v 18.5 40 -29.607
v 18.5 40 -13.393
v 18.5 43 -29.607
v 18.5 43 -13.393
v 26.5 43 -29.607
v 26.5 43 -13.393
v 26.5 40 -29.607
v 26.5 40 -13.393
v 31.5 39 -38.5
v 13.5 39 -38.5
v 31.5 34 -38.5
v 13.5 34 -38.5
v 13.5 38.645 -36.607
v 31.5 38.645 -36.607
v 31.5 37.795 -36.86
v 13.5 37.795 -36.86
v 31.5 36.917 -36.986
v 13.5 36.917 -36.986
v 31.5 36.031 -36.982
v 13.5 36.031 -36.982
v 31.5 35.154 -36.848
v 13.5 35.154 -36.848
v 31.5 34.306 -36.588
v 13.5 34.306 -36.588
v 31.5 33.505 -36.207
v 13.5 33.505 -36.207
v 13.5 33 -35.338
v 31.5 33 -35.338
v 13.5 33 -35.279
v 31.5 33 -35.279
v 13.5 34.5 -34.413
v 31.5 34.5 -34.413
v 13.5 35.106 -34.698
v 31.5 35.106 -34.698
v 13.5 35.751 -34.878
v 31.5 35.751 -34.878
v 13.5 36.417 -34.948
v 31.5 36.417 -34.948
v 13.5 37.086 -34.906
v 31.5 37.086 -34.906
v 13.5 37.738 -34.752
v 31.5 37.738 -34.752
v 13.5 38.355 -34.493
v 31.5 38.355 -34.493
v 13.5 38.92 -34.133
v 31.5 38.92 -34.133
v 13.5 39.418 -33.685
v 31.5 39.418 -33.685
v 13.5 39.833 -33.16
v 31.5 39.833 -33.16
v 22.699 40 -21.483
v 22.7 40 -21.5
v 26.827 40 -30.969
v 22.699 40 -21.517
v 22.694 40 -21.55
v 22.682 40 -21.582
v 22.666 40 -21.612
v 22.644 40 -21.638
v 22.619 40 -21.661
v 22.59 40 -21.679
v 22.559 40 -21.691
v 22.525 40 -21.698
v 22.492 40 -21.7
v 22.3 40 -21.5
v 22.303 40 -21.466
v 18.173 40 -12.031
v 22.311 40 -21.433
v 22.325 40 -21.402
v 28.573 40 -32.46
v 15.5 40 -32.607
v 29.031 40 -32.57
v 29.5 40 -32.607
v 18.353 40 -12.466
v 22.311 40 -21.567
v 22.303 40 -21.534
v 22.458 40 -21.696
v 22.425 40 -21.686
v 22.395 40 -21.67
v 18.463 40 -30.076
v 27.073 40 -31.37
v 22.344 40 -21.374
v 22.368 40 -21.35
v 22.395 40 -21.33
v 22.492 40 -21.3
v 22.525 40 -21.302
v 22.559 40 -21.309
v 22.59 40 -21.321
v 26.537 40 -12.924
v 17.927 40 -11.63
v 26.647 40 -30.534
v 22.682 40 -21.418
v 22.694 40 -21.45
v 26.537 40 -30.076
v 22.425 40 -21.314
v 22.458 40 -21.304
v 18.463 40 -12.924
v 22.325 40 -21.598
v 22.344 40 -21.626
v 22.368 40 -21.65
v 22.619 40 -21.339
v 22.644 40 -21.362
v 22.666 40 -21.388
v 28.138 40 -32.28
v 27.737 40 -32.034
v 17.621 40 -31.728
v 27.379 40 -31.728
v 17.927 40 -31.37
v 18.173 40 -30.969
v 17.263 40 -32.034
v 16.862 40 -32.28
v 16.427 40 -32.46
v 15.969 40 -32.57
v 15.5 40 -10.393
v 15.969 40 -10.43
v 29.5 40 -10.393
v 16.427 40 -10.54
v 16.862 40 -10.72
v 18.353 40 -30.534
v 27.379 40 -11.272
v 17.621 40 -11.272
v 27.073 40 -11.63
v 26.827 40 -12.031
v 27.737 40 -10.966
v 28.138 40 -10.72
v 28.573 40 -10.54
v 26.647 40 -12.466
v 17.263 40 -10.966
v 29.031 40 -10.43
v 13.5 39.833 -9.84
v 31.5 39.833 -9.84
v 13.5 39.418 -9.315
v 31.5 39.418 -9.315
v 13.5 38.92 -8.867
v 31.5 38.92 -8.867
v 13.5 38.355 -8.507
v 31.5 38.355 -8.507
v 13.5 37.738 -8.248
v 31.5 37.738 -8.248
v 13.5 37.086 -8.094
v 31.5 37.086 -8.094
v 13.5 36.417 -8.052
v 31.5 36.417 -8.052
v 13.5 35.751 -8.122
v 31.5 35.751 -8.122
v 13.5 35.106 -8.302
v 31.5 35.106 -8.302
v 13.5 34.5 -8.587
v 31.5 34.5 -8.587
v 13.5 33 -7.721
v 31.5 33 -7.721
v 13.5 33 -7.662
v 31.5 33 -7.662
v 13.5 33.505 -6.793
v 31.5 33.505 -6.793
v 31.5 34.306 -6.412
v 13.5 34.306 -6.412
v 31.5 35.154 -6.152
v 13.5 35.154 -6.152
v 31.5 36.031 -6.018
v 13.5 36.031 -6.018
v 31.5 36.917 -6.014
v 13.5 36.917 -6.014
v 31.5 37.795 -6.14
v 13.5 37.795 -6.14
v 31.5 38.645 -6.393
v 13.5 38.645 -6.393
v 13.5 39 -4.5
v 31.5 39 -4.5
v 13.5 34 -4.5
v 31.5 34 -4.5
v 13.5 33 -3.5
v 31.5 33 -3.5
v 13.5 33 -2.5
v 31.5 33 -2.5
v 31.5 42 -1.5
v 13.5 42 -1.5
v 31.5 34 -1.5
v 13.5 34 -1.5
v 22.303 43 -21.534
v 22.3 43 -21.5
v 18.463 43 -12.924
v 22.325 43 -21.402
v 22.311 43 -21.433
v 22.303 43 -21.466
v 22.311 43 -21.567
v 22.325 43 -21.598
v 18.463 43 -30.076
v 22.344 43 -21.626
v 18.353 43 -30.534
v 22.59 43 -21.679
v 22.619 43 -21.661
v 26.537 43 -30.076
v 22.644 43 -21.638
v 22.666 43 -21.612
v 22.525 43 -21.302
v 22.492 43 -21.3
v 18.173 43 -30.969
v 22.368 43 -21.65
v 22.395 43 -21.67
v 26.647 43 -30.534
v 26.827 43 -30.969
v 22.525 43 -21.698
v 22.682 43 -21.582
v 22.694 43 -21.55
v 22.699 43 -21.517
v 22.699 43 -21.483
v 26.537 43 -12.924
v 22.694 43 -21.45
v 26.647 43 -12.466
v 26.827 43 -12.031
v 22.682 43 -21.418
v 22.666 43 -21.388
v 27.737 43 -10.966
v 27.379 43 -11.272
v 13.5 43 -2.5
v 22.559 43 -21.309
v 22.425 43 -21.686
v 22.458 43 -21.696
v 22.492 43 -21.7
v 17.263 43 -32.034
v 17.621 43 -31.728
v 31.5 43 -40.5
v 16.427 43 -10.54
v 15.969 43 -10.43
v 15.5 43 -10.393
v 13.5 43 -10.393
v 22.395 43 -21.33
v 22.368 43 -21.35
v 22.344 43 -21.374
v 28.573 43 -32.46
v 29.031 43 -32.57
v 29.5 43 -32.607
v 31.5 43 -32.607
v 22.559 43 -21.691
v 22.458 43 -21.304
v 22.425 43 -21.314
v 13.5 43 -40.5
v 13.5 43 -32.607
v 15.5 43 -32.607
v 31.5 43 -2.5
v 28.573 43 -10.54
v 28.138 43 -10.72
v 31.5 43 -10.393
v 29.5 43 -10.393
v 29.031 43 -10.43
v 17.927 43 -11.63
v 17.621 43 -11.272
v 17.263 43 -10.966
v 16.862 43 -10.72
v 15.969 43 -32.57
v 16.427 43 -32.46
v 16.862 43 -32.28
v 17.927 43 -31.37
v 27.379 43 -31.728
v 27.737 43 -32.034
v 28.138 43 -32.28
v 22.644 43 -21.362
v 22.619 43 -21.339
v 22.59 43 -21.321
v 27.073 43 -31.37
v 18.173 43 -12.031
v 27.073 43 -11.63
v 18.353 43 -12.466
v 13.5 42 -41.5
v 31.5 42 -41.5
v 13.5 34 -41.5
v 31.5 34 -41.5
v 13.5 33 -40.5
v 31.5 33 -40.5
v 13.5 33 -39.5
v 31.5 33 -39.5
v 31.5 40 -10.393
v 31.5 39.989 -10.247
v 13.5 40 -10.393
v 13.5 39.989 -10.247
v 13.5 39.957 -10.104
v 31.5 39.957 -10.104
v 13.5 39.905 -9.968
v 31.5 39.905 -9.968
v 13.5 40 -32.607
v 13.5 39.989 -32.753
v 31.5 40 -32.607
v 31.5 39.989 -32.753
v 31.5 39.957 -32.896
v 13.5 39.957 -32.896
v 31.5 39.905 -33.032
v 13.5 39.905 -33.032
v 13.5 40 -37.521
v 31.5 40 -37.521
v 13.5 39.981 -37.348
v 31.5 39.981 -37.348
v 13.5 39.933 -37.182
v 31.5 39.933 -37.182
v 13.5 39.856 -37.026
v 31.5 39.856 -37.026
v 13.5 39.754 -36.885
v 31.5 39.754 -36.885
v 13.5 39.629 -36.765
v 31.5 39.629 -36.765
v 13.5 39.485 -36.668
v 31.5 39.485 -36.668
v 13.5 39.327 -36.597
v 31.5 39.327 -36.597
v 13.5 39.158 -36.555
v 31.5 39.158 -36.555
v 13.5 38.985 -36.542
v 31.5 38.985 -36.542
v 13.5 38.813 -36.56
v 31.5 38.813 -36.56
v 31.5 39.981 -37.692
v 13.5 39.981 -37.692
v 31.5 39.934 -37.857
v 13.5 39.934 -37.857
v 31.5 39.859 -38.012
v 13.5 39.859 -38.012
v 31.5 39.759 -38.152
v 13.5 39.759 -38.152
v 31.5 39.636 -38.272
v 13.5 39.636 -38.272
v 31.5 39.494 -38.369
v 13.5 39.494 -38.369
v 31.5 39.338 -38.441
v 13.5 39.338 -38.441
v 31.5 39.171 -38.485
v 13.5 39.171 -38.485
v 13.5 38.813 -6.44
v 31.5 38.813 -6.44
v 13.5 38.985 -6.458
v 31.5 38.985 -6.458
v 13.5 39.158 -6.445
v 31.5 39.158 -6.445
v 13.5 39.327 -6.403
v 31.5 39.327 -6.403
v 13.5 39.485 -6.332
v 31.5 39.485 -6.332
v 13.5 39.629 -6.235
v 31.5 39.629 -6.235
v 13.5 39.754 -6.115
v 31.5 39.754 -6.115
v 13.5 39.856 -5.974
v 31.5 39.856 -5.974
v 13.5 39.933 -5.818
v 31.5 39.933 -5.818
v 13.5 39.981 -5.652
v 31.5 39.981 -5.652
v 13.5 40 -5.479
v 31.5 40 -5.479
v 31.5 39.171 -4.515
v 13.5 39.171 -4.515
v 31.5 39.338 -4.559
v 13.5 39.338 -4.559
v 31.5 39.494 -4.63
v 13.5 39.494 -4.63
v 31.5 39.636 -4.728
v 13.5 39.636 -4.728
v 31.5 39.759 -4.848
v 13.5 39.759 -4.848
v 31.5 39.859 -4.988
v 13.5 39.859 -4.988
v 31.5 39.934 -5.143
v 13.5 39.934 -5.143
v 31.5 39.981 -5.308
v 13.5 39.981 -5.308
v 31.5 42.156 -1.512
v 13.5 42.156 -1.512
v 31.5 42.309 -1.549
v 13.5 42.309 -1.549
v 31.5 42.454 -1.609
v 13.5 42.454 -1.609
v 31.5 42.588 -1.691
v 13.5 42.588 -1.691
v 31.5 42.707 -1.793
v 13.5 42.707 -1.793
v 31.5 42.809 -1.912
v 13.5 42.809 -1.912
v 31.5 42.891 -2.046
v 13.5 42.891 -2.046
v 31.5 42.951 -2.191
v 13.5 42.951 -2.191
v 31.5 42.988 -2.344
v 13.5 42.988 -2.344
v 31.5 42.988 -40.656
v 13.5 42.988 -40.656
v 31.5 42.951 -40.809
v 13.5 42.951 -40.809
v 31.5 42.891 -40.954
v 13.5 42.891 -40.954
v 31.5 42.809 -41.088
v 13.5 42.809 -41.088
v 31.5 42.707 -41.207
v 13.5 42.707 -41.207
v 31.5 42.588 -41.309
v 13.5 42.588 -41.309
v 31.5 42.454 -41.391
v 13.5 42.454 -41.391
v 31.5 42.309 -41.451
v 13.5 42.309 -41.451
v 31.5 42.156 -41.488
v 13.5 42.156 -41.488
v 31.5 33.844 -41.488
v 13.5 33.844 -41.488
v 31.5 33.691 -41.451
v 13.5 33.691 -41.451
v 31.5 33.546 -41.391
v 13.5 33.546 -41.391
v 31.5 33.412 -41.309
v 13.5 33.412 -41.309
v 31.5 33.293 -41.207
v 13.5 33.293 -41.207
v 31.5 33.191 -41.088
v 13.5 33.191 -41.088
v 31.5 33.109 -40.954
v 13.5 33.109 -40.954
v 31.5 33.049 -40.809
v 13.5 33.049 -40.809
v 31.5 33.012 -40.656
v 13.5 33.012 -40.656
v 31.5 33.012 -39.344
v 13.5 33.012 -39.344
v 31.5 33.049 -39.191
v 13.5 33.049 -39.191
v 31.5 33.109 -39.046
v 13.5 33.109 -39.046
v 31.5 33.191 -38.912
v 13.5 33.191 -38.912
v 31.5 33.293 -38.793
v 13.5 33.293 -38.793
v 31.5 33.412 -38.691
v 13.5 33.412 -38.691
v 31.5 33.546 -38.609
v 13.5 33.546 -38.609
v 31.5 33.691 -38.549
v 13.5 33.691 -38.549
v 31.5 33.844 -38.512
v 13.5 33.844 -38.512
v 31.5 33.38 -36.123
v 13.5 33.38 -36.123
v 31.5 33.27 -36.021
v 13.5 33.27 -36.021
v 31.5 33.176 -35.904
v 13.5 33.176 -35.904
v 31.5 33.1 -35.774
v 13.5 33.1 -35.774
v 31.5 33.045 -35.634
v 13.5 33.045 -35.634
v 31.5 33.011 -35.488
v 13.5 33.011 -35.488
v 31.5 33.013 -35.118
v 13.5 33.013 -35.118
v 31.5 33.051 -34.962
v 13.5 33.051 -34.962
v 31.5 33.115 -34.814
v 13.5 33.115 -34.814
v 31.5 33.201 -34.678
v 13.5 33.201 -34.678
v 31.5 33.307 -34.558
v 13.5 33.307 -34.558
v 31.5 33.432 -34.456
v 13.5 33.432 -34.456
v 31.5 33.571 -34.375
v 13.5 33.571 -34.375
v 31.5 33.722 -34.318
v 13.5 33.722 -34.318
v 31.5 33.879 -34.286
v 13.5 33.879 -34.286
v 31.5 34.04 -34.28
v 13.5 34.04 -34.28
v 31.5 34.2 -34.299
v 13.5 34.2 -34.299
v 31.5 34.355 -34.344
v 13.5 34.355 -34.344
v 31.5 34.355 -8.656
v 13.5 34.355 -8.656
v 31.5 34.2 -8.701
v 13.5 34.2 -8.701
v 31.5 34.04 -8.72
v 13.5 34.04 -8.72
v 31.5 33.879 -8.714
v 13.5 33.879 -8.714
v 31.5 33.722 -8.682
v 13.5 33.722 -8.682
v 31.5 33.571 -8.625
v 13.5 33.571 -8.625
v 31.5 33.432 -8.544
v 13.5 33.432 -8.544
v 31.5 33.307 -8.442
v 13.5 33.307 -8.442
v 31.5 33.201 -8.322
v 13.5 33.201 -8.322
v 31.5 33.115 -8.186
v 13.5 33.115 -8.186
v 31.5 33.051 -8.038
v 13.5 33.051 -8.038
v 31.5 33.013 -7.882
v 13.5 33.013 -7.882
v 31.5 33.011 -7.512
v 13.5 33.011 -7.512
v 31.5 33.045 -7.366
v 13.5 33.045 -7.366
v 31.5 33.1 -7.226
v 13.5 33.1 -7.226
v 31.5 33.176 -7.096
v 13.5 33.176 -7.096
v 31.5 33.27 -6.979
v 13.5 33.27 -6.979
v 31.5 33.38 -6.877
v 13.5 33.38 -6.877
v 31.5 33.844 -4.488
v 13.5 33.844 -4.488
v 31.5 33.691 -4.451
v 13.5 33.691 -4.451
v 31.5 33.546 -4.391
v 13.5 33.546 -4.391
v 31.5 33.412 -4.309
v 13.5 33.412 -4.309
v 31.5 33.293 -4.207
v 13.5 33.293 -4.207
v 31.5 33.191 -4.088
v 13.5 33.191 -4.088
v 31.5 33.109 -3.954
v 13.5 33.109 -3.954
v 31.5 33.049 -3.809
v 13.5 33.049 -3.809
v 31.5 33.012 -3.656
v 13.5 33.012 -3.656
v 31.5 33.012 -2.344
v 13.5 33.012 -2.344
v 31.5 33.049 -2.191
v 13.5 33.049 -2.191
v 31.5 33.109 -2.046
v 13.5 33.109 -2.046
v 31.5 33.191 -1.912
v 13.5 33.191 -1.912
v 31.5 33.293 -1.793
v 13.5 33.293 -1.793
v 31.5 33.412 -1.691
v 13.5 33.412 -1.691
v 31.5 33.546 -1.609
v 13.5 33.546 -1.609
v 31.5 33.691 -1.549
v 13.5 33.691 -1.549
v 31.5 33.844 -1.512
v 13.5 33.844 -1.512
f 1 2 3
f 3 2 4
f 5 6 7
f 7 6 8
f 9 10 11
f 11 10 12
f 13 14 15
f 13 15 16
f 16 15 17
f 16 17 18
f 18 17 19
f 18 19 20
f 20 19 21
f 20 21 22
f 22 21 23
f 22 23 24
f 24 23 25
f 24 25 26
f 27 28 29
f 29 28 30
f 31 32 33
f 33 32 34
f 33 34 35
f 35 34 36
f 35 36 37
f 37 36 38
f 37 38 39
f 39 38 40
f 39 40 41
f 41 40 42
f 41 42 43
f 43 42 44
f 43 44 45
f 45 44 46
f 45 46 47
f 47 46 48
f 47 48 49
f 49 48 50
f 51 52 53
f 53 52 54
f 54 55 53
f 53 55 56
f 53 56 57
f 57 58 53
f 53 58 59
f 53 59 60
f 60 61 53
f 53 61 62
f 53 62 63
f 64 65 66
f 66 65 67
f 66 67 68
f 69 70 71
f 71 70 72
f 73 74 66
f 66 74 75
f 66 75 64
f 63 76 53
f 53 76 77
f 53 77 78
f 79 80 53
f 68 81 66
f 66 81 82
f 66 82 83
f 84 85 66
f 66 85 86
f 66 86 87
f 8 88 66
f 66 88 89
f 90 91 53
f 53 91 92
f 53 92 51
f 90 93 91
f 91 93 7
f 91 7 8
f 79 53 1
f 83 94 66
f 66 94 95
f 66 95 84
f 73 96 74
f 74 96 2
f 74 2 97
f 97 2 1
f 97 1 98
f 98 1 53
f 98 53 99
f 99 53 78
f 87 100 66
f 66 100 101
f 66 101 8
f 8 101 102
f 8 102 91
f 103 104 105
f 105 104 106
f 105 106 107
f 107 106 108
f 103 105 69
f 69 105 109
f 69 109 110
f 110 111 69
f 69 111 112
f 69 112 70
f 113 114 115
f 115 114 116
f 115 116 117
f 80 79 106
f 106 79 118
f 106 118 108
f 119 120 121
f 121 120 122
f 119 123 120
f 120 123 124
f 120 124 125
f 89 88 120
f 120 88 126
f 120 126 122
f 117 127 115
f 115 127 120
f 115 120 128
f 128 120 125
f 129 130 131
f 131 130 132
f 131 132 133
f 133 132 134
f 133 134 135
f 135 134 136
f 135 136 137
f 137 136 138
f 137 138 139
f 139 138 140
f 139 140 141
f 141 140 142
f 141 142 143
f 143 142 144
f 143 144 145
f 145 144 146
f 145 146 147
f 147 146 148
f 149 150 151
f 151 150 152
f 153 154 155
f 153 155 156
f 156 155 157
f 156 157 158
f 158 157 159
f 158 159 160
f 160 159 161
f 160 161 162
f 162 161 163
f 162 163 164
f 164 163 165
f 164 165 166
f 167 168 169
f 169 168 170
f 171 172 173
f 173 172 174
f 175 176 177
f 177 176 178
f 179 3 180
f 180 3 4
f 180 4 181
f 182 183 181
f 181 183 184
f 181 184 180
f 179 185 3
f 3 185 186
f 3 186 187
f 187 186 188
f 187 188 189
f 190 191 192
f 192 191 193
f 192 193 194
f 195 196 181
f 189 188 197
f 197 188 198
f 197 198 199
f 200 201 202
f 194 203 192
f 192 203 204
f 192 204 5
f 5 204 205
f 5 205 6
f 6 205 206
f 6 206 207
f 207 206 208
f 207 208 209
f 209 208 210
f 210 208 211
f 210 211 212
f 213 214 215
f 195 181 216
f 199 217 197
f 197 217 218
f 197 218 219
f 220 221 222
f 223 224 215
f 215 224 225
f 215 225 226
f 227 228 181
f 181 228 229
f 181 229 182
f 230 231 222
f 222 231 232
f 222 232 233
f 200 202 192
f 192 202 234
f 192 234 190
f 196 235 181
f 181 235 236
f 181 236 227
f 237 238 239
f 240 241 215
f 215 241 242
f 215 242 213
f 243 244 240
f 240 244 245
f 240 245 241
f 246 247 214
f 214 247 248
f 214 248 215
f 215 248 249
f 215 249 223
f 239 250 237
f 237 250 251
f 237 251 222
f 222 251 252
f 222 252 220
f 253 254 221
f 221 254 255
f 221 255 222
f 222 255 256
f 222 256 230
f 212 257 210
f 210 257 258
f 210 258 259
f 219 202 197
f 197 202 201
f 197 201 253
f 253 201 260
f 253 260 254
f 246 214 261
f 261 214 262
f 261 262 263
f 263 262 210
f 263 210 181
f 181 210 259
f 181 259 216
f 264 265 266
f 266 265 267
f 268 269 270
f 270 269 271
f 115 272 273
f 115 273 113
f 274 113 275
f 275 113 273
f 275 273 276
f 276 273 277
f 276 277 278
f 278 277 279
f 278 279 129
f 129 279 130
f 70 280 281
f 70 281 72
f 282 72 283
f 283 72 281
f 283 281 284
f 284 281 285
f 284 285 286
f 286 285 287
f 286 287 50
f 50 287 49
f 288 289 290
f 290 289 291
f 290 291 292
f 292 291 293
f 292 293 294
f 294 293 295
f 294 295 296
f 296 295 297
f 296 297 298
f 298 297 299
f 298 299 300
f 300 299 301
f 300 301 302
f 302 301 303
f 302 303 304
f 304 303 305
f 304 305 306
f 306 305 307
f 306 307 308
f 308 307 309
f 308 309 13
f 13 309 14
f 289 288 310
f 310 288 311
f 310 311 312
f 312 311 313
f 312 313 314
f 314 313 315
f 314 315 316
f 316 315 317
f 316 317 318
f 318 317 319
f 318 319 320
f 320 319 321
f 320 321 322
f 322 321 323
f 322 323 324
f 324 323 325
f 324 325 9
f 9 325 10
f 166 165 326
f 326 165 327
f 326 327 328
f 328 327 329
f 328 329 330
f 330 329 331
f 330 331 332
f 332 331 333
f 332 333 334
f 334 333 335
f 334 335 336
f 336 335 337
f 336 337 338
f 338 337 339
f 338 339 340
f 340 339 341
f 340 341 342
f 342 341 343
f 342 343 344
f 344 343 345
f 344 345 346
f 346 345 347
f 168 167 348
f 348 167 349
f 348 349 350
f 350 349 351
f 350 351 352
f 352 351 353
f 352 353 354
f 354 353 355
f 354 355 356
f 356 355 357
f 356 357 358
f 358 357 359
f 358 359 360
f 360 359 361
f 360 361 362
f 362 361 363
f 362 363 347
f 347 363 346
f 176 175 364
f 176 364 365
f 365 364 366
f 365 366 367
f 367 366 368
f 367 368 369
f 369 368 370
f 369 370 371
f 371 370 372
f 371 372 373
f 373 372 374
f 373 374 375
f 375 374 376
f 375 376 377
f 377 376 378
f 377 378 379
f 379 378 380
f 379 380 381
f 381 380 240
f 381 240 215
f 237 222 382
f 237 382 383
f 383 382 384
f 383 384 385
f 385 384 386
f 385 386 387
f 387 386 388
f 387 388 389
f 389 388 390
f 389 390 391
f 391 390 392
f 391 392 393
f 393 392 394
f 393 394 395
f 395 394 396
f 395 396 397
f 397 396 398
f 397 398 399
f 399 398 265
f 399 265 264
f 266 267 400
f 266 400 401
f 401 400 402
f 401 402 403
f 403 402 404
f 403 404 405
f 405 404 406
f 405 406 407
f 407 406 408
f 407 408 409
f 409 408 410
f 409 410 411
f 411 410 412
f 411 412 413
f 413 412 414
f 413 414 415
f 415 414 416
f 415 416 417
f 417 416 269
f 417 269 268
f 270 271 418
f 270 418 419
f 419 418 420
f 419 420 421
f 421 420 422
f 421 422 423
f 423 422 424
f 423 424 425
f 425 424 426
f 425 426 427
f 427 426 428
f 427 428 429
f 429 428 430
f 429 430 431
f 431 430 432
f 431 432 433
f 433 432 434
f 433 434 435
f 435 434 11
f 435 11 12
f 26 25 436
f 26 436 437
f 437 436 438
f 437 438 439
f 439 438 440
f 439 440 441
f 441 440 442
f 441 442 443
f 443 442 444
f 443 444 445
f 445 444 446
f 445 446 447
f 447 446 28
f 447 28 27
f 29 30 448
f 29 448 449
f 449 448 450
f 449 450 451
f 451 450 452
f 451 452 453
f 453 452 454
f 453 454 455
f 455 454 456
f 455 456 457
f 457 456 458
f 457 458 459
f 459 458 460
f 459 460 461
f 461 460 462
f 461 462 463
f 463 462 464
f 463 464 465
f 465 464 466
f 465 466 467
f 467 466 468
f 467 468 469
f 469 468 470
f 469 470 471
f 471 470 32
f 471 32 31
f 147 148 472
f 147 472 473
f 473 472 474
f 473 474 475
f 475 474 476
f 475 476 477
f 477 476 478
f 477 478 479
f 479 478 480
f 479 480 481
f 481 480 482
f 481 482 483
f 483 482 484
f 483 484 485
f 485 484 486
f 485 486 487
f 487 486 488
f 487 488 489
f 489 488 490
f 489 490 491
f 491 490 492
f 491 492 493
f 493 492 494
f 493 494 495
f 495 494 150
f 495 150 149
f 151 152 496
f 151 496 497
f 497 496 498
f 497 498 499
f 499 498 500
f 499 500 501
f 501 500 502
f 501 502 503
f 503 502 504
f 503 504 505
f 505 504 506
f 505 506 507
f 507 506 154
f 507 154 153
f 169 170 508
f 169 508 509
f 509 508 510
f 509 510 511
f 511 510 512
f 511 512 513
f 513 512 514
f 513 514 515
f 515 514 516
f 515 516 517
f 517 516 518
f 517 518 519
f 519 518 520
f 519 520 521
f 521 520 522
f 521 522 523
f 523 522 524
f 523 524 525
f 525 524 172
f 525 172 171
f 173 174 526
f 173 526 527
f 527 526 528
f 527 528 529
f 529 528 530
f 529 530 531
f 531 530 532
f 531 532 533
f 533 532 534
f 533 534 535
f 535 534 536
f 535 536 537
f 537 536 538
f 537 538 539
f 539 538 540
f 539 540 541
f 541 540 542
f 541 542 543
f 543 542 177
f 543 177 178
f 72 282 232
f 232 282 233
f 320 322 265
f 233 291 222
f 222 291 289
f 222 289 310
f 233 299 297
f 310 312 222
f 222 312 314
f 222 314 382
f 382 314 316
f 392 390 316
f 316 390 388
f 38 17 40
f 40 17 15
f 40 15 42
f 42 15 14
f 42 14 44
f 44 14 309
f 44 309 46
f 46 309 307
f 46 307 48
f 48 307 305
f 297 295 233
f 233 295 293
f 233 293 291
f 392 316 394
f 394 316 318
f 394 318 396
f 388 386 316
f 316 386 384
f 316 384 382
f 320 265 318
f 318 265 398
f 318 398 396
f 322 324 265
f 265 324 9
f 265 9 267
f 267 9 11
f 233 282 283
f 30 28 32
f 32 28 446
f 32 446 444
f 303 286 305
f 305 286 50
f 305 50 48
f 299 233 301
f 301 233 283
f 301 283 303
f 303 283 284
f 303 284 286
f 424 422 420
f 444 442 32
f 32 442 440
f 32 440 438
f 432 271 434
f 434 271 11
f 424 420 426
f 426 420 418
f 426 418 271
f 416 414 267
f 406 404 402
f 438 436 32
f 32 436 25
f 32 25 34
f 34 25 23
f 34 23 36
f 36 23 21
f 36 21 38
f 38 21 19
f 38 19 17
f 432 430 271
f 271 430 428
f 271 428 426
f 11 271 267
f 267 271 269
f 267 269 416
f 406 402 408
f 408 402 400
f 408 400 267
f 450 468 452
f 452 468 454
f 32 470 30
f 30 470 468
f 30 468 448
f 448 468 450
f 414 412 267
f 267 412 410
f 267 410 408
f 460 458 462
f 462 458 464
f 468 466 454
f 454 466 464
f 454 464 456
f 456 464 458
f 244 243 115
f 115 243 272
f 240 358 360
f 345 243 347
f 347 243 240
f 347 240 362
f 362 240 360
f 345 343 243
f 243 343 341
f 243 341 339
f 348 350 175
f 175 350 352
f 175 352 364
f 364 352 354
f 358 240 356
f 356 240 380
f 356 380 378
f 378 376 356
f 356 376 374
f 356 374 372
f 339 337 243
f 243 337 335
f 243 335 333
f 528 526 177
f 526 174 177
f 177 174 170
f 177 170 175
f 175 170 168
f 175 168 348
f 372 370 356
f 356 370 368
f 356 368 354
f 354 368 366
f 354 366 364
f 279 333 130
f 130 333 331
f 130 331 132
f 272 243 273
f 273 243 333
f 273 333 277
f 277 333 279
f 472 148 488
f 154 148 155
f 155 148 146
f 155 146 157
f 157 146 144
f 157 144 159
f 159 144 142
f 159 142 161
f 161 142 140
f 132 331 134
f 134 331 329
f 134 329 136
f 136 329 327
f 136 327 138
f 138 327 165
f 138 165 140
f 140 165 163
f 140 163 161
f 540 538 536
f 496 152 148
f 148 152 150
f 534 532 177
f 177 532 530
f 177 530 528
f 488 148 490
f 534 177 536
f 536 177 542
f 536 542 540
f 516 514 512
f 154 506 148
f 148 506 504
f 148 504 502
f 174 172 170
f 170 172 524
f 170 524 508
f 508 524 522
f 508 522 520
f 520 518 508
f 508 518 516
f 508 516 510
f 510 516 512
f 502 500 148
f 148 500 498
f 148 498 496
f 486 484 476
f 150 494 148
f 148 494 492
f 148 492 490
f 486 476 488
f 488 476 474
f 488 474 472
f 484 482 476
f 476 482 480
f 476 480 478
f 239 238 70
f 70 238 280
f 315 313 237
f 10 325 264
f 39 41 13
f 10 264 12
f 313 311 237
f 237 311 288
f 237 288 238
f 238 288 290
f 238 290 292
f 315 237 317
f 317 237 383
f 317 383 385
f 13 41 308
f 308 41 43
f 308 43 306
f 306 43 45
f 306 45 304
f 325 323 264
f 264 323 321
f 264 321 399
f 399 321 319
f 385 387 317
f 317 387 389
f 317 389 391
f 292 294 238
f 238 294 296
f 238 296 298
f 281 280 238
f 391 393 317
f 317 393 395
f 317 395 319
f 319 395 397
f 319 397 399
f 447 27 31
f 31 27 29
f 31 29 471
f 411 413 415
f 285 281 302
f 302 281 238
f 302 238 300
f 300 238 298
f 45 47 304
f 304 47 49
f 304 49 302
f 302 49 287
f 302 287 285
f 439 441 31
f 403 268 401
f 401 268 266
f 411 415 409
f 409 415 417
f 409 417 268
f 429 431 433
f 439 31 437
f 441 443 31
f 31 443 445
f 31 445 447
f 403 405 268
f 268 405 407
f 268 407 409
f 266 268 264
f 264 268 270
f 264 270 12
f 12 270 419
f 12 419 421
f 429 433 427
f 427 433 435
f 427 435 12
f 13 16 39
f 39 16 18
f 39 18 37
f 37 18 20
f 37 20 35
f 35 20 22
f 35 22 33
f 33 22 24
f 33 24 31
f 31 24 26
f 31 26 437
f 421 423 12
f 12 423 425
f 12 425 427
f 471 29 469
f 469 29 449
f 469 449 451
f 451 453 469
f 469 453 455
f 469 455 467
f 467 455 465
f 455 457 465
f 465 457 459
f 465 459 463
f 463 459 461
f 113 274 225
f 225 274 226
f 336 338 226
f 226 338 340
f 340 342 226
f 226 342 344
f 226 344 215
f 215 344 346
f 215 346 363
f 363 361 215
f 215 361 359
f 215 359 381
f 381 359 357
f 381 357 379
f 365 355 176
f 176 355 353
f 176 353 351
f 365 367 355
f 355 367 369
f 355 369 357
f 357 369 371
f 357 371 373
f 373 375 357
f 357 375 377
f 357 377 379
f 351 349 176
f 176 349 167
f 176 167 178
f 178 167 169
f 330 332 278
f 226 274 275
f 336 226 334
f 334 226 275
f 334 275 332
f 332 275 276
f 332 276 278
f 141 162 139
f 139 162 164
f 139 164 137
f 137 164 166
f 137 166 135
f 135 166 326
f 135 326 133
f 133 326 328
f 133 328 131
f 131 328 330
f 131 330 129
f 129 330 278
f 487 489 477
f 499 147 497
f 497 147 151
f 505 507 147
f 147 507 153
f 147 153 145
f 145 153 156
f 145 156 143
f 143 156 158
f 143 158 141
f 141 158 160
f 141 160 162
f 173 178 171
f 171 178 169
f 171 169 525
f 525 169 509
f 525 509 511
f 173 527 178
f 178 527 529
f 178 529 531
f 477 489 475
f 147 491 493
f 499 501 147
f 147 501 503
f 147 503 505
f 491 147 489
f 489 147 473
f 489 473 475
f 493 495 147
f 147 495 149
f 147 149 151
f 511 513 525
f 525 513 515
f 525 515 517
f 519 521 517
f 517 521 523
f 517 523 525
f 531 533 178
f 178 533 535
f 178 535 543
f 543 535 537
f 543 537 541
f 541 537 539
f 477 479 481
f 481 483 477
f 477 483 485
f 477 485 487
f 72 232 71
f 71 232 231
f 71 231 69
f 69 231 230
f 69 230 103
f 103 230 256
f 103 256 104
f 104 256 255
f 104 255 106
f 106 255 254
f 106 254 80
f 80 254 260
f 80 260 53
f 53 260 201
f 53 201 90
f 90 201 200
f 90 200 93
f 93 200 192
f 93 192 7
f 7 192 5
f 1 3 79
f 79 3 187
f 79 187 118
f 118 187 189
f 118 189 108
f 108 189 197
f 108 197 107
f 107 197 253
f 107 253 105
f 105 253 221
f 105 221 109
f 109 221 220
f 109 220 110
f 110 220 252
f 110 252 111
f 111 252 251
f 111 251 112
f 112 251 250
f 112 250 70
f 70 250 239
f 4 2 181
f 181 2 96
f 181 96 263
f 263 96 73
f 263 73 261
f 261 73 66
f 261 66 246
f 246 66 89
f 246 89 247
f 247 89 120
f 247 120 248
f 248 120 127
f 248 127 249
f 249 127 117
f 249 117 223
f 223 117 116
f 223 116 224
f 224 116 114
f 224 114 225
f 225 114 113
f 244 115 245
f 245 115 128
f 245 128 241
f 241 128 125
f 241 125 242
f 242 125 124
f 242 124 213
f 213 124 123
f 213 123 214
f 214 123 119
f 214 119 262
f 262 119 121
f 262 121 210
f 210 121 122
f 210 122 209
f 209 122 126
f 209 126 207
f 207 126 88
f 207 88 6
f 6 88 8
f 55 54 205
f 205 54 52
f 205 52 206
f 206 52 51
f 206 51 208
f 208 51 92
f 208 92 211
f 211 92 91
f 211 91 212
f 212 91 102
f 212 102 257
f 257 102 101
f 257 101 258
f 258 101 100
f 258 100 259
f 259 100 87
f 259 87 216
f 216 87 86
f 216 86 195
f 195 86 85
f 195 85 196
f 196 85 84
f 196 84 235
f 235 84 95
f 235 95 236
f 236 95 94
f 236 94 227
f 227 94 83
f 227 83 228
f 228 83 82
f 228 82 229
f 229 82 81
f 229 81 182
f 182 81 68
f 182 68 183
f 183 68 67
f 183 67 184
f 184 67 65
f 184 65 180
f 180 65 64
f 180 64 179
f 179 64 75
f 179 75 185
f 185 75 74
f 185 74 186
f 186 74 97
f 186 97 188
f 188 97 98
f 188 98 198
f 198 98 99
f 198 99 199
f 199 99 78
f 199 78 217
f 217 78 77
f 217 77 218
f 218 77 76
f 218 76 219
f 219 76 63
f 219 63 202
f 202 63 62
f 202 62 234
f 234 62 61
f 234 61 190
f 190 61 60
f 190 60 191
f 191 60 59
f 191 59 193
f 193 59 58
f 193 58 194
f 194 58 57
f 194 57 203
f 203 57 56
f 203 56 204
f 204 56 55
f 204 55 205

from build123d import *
from build123d.topology import SkipClean

# Parameters (mm, degrees)
EXTRUDE_1_DEPTH      = 4
EXTRUDE_1_DEPTH_BACK = 4
FILLET_4_R           = 1
EXTRUDE_2_DEPTH      = 5
FILLET_5_R           = 3
SKETCH_5_R           = 0.2
CUT_EXTRUDE_1_DEPTH  = 54.051861419


with BuildPart() as part:
    # Эскиз1 → Бобышка-Вытянуть1 (new, two sides: drawn at the far end of the back side and taken through both)
    with BuildSketch(Plane(origin=(22.5, -18, -41), x_dir=(0, -1, 0), z_dir=(1, 0, 0)).offset(-EXTRUDE_1_DEPTH_BACK)):
        with BuildLine():
            Line((-51, -2.5), (-51, 0.5))
            Line((-51, 0.5), (-61, 0.5))
            Line((-61, 0.5), (-61, -39.5))
            Line((-61, -39.5), (-51, -39.5))
            Line((-51, -39.5), (-51, -36.5))
            Line((-51, -36.5), (-58, -36.5))
            Line((-58, -36.5), (-58, -33.885132318))
            ThreePointArc((-58, -33.885132318), (-54.5, -35), (-51, -33.885132318))
            Line((-51, -33.885132318), (-51, -30.885132318))
            ThreePointArc((-51, -30.885132318), (-54.5, -32.948640645), (-58, -30.885132318))
            Line((-58, -30.885132318), (-58, -8.114867682))
            ThreePointArc((-58, -8.114867682), (-54.5, -6.051359355), (-51, -8.114867682))
            Line((-51, -8.114867682), (-51, -5.114867682))
            ThreePointArc((-51, -5.114867682), (-54.5, -4), (-58, -5.114867682))
            Line((-58, -5.114867682), (-58, -2.5))
            Line((-58, -2.5), (-51, -2.5))
        make_face()
    extrude(amount=EXTRUDE_1_DEPTH + EXTRUDE_1_DEPTH_BACK)

    # Скругление4
    # the kernel refuses this fillet: 1 mm, written as the material it adds along each edge
    with BuildSketch(Plane(origin=(26.5, 40, -38.5), x_dir=(0, 0, 1), z_dir=(-1, 0, 0)), Plane(origin=(18.5, 40, -4.5), x_dir=(0, 0, -1), z_dir=(1, 0, 0))) as fillet_4_piece_1:
        with BuildLine():
            CenterArc((FILLET_4_R, -FILLET_4_R), FILLET_4_R, 90, 90)
            Line((0, -FILLET_4_R), (0, 0))
            Line((0, 0), (FILLET_4_R, 0))
        make_face()
    extrude(amount=8)
    with BuildSketch(Plane(origin=(26.5, 40, -35.885132318), x_dir=(0, 0, -1), z_dir=(-1, 0, 0))) as fillet_4_piece_2:
        with BuildLine():
            CenterArc((1.65681317, 1), FILLET_4_R, 159.234649254, 110.765350746)
            ThreePointArc((0.721772915, 1.354541568), (0.404005567, 0.654294593), (0, 0))
            Line((0, 0), (1.65681317, 0))
        make_face()
    extrude(amount=8)
    with BuildSketch(Plane(origin=(18.5, 40, -32.885132318), x_dir=(0, -0.5188652741265531, -0.8548560272382577), z_dir=(1, 0, 0))) as fillet_4_piece_3:
        with BuildLine():
            CenterArc((0.281062042, -0.999193595), FILLET_4_R, 87.698857305, 33.557309762)
            Line((-0.237803232, -0.144337567), (0, 0))
            ThreePointArc((0, 0), (0.160606881, 0.003225622), (0.321213762, 0))
        make_face()
    extrude(amount=8)
    with BuildSketch(Plane(origin=(18.5, 40, -10.114867682), x_dir=(0, 0, -1), z_dir=(1, 0, 0))) as fillet_4_piece_4:
        with BuildLine():
            CenterArc((0.278179278, -1), FILLET_4_R, 90, 33.557309762)
            ThreePointArc((-0.27459152, -0.166666667), (-0.138969423, -0.080575891), (0, 0))
            Line((0, 0), (0.278179278, 0))
        make_face()
    extrude(amount=8)
    with BuildSketch(Plane(origin=(18.5, 40, -7.114867682), x_dir=(0, -0.8825285241752726, 0.4702588691529541), z_dir=(1, 0, 0))) as fillet_4_piece_5:
        with BuildLine():
            CenterArc((1.661659612, -0.991926012), FILLET_4_R, 97.285750856, 110.765350746)
            Line((0.779131087, -1.462184881), (0, 0))
            ThreePointArc((0, 0), (0.767420843, -0.048858602), (1.534841686, 0))
        make_face()
    extrude(amount=8)
    # the kernel refuses this fillet: 1 mm, written as the material it takes off along each edge
    with BuildSketch(Plane(origin=(17.002810413, 33, -35.885132318), x_dir=(0, 0, 1), z_dir=(1, 0, 0))) as fillet_4_2_piece_1:
        with BuildLine():
            CenterArc((0.547160138, -1), FILLET_4_R, 90, 60.33576985)
            ThreePointArc((-0.321780523, -0.505083716), (-0.167142324, -0.248558772), (0, 0))
            Line((0, 0), (0.547160138, 0))
        make_face()
    extrude(amount=10.994379174, mode=Mode.SUBTRACT)
    with BuildSketch(Plane(origin=(12.515911635, 33, -32.885132318), x_dir=(0, 0.7006292692220382, -0.7135254915624197), z_dir=(1, 0, 0))) as fillet_4_2_piece_2:
        with BuildLine():
            CenterArc((2.408549106, -0.963525492), FILLET_4_R, 105.522487814, 120)
            Line((1.707919837, -1.677050983), (0, 0))
            ThreePointArc((0, 0), (1.070466269, -0.145898034), (2.140932539, 0))
        make_face()
    extrude(amount=19.968176729, mode=Mode.SUBTRACT)
    with BuildSketch(Plane(origin=(12.515911635, 33, -10.114867682), x_dir=(0, 0, 1), z_dir=(1, 0, 0))) as fillet_4_2_piece_3:
        with BuildLine():
            CenterArc((2.393635346, -1), FILLET_4_R, 90, 120)
            ThreePointArc((1.527609942, -1.5), (0.866025404, -0.645898034), (0, 0))
            Line((0, 0), (2.393635346, 0))
        make_face()
    extrude(amount=19.968176729, mode=Mode.SUBTRACT)
    with BuildSketch(Plane(origin=(17.002810413, 33, -7.114867682), x_dir=(0, 0.8433863696195878, 0.5373075762911708), z_dir=(1, 0, 0))) as fillet_4_2_piece_4:
        with BuildLine():
            CenterArc((0.549393082, -0.998774978), FILLET_4_R, 87.163688846, 60.33576985)
            Line((-0.293993287, -0.461467402), (0, 0))
            ThreePointArc((0, 0), (0.299437917, 0.007413047), (0.598875835, 0))
        make_face()
    extrude(amount=10.994379174, mode=Mode.SUBTRACT)
    with BuildSketch(Plane(origin=(16, 33, -4.5), x_dir=(0, 0, 1), z_dir=(1, 0, 0)), Plane(origin=(16, 33, -1.5), x_dir=(0, 1, 0), z_dir=(1, 0, 0)), Plane(origin=(16, 43, -1.5), x_dir=(0, 0, -1), z_dir=(1, 0, 0)), Plane(origin=(16, 43, -41.5), x_dir=(0, -1, 0), z_dir=(1, 0, 0)), Plane(origin=(16, 33, -41.5), x_dir=(0, 0, 1), z_dir=(1, 0, 0)), Plane(origin=(29, 33, -38.5), x_dir=(0, 0, -1), z_dir=(-1, 0, 0))) as fillet_4_2_piece_5:
        with BuildLine():
            CenterArc((FILLET_4_R, -FILLET_4_R), FILLET_4_R, 90, 90)
            Line((0, -FILLET_4_R), (0, 0))
            Line((0, 0), (FILLET_4_R, 0))
        make_face()
    extrude(amount=13, mode=Mode.SUBTRACT)

    # Эскиз3 → Бобышка-Вытянуть2 (add)
    with SkipClean():  # the faces are left unmerged after this step: merging them gives an invalid solid
        with BuildSketch(Plane(origin=(26.5, 0, 0), x_dir=(0, 0, -1), z_dir=(1, 0, 0))):
            with BuildLine():
                Line((10.393046959, 40), (10.393046959, 43))
                Line((10.393046959, 43), (2.5, 43))
                ThreePointArc((2.5, 43), (1.792893219, 42.707106781), (1.5, 42))
                Line((1.5, 42), (1.5, 34))
                ThreePointArc((1.5, 34), (1.792893219, 33.292893219), (2.5, 33))
                Line((2.5, 33), (3.5, 33))
                ThreePointArc((3.5, 33), (4.207106781, 33.292893219), (4.5, 34))
                Line((4.5, 34), (4.5, 39))
                ThreePointArc((4.5, 39), (4.78551671, 39.699652505), (5.479027256, 39.999780048))
                ThreePointArc((5.479027256, 39.999780048), (6.286931447, 39.559430985), (6.393094766, 38.645458432))
                ThreePointArc((6.393094766, 38.645458432), (6.0182377, 36.030539524), (6.793087158, 33.505083716))
                ThreePointArc((6.793087158, 33.505083716), (7.159492389, 33.135443384), (7.662027819, 33))
                Line((7.662027819, 33), (7.721232336, 33))
                ThreePointArc((7.721232336, 33), (8.587257739, 33.5), (8.587257739, 34.5))
                ThreePointArc((8.587257739, 34.5), (8.157384295, 37.414854216), (9.840276161, 39.833333333))
                ThreePointArc((9.840276161, 39.833333333), (10.104371825, 39.957427108), (10.393046959, 40))
            make_face()
            with BuildLine():
                Line((32.606953041, 40), (32.606953041, 43))
                Line((32.606953041, 43), (40.5, 43))
                ThreePointArc((40.5, 43), (41.207106781, 42.707106781), (41.5, 42))
                Line((41.5, 42), (41.5, 34))
                ThreePointArc((41.5, 34), (41.207106781, 33.292893219), (40.5, 33))
                Line((40.5, 33), (39.5, 33))
                ThreePointArc((39.5, 33), (38.792893219, 33.292893219), (38.5, 34))
                Line((38.5, 34), (38.5, 39))
                ThreePointArc((38.5, 39), (38.21448329, 39.699652505), (37.520972744, 39.999780048))
                ThreePointArc((37.520972744, 39.999780048), (36.713068553, 39.559430985), (36.606905234, 38.645458432))
                ThreePointArc((36.606905234, 38.645458432), (36.9817623, 36.030539524), (36.206912842, 33.505083716))
                ThreePointArc((36.206912842, 33.505083716), (35.840507611, 33.135443384), (35.337972181, 33))
                Line((35.337972181, 33), (35.278767664, 33))
                ThreePointArc((35.278767664, 33), (34.412742261, 33.5), (34.412742261, 34.5))
                ThreePointArc((34.412742261, 34.5), (34.842615705, 37.414854216), (33.159723839, 39.833333333))
                ThreePointArc((33.159723839, 39.833333333), (32.895628175, 39.957427108), (32.606953041, 40))
            make_face()
        extrude_2 = extrude(amount=EXTRUDE_2_DEPTH)

    # Зеркальное отражение1: Бобышка-Вытянуть2 across plane
    with SkipClean():  # the faces are left unmerged after this step: merging them gives an invalid solid
        add(extrude_2.mirror(Plane(origin=(22.5, 0, 0), x_dir=(0, 0, 1), z_dir=(1, 0, 0))))

    # Скругление5
    # the kernel refuses this fillet: 3 mm, written as the material it adds along each edge
    with BuildSketch(Plane(origin=(26.5, 40, -32.606953041), x_dir=(0, 0, 1), z_dir=(0, 1, 0)), Plane(origin=(26.5, 40, -10.393046959), x_dir=(1, 0, 0), z_dir=(0, 1, 0))) as fillet_5_piece_1:
        with BuildLine():
            CenterArc((FILLET_5_R, FILLET_5_R), FILLET_5_R, 180, 90)
            Line((0, FILLET_5_R), (0, 0))
            Line((0, 0), (FILLET_5_R, 0))
        make_face()
    extrude(amount=3)
    with BuildSketch(Plane(origin=(18.5, 40, -32.606953041), x_dir=(0, 0, 1), z_dir=(0, 1, 0)), Plane(origin=(18.5, 40, -10.393046959), x_dir=(-1, 0, 0), z_dir=(0, 1, 0))) as fillet_5_piece_2:
        with BuildLine():
            CenterArc((FILLET_5_R, -FILLET_5_R), FILLET_5_R, 90, 90)
            Line((0, -FILLET_5_R), (0, 0))
            Line((0, 0), (FILLET_5_R, 0))
        make_face()
    extrude(amount=3)

    # Эскиз5 → Вырез-Вытянуть1 (cut, through all)
    with BuildSketch(Plane(origin=(0, 43, 0), x_dir=(1, 0, 0), z_dir=(0, 1, 0))):
        with Locations(Location((22.5, 21.5, 0), (0, 0, 180))):
            Circle(SKETCH_5_R)
    extrude(amount=-CUT_EXTRUDE_1_DEPTH, mode=Mode.SUBTRACT)


solid = part.part
